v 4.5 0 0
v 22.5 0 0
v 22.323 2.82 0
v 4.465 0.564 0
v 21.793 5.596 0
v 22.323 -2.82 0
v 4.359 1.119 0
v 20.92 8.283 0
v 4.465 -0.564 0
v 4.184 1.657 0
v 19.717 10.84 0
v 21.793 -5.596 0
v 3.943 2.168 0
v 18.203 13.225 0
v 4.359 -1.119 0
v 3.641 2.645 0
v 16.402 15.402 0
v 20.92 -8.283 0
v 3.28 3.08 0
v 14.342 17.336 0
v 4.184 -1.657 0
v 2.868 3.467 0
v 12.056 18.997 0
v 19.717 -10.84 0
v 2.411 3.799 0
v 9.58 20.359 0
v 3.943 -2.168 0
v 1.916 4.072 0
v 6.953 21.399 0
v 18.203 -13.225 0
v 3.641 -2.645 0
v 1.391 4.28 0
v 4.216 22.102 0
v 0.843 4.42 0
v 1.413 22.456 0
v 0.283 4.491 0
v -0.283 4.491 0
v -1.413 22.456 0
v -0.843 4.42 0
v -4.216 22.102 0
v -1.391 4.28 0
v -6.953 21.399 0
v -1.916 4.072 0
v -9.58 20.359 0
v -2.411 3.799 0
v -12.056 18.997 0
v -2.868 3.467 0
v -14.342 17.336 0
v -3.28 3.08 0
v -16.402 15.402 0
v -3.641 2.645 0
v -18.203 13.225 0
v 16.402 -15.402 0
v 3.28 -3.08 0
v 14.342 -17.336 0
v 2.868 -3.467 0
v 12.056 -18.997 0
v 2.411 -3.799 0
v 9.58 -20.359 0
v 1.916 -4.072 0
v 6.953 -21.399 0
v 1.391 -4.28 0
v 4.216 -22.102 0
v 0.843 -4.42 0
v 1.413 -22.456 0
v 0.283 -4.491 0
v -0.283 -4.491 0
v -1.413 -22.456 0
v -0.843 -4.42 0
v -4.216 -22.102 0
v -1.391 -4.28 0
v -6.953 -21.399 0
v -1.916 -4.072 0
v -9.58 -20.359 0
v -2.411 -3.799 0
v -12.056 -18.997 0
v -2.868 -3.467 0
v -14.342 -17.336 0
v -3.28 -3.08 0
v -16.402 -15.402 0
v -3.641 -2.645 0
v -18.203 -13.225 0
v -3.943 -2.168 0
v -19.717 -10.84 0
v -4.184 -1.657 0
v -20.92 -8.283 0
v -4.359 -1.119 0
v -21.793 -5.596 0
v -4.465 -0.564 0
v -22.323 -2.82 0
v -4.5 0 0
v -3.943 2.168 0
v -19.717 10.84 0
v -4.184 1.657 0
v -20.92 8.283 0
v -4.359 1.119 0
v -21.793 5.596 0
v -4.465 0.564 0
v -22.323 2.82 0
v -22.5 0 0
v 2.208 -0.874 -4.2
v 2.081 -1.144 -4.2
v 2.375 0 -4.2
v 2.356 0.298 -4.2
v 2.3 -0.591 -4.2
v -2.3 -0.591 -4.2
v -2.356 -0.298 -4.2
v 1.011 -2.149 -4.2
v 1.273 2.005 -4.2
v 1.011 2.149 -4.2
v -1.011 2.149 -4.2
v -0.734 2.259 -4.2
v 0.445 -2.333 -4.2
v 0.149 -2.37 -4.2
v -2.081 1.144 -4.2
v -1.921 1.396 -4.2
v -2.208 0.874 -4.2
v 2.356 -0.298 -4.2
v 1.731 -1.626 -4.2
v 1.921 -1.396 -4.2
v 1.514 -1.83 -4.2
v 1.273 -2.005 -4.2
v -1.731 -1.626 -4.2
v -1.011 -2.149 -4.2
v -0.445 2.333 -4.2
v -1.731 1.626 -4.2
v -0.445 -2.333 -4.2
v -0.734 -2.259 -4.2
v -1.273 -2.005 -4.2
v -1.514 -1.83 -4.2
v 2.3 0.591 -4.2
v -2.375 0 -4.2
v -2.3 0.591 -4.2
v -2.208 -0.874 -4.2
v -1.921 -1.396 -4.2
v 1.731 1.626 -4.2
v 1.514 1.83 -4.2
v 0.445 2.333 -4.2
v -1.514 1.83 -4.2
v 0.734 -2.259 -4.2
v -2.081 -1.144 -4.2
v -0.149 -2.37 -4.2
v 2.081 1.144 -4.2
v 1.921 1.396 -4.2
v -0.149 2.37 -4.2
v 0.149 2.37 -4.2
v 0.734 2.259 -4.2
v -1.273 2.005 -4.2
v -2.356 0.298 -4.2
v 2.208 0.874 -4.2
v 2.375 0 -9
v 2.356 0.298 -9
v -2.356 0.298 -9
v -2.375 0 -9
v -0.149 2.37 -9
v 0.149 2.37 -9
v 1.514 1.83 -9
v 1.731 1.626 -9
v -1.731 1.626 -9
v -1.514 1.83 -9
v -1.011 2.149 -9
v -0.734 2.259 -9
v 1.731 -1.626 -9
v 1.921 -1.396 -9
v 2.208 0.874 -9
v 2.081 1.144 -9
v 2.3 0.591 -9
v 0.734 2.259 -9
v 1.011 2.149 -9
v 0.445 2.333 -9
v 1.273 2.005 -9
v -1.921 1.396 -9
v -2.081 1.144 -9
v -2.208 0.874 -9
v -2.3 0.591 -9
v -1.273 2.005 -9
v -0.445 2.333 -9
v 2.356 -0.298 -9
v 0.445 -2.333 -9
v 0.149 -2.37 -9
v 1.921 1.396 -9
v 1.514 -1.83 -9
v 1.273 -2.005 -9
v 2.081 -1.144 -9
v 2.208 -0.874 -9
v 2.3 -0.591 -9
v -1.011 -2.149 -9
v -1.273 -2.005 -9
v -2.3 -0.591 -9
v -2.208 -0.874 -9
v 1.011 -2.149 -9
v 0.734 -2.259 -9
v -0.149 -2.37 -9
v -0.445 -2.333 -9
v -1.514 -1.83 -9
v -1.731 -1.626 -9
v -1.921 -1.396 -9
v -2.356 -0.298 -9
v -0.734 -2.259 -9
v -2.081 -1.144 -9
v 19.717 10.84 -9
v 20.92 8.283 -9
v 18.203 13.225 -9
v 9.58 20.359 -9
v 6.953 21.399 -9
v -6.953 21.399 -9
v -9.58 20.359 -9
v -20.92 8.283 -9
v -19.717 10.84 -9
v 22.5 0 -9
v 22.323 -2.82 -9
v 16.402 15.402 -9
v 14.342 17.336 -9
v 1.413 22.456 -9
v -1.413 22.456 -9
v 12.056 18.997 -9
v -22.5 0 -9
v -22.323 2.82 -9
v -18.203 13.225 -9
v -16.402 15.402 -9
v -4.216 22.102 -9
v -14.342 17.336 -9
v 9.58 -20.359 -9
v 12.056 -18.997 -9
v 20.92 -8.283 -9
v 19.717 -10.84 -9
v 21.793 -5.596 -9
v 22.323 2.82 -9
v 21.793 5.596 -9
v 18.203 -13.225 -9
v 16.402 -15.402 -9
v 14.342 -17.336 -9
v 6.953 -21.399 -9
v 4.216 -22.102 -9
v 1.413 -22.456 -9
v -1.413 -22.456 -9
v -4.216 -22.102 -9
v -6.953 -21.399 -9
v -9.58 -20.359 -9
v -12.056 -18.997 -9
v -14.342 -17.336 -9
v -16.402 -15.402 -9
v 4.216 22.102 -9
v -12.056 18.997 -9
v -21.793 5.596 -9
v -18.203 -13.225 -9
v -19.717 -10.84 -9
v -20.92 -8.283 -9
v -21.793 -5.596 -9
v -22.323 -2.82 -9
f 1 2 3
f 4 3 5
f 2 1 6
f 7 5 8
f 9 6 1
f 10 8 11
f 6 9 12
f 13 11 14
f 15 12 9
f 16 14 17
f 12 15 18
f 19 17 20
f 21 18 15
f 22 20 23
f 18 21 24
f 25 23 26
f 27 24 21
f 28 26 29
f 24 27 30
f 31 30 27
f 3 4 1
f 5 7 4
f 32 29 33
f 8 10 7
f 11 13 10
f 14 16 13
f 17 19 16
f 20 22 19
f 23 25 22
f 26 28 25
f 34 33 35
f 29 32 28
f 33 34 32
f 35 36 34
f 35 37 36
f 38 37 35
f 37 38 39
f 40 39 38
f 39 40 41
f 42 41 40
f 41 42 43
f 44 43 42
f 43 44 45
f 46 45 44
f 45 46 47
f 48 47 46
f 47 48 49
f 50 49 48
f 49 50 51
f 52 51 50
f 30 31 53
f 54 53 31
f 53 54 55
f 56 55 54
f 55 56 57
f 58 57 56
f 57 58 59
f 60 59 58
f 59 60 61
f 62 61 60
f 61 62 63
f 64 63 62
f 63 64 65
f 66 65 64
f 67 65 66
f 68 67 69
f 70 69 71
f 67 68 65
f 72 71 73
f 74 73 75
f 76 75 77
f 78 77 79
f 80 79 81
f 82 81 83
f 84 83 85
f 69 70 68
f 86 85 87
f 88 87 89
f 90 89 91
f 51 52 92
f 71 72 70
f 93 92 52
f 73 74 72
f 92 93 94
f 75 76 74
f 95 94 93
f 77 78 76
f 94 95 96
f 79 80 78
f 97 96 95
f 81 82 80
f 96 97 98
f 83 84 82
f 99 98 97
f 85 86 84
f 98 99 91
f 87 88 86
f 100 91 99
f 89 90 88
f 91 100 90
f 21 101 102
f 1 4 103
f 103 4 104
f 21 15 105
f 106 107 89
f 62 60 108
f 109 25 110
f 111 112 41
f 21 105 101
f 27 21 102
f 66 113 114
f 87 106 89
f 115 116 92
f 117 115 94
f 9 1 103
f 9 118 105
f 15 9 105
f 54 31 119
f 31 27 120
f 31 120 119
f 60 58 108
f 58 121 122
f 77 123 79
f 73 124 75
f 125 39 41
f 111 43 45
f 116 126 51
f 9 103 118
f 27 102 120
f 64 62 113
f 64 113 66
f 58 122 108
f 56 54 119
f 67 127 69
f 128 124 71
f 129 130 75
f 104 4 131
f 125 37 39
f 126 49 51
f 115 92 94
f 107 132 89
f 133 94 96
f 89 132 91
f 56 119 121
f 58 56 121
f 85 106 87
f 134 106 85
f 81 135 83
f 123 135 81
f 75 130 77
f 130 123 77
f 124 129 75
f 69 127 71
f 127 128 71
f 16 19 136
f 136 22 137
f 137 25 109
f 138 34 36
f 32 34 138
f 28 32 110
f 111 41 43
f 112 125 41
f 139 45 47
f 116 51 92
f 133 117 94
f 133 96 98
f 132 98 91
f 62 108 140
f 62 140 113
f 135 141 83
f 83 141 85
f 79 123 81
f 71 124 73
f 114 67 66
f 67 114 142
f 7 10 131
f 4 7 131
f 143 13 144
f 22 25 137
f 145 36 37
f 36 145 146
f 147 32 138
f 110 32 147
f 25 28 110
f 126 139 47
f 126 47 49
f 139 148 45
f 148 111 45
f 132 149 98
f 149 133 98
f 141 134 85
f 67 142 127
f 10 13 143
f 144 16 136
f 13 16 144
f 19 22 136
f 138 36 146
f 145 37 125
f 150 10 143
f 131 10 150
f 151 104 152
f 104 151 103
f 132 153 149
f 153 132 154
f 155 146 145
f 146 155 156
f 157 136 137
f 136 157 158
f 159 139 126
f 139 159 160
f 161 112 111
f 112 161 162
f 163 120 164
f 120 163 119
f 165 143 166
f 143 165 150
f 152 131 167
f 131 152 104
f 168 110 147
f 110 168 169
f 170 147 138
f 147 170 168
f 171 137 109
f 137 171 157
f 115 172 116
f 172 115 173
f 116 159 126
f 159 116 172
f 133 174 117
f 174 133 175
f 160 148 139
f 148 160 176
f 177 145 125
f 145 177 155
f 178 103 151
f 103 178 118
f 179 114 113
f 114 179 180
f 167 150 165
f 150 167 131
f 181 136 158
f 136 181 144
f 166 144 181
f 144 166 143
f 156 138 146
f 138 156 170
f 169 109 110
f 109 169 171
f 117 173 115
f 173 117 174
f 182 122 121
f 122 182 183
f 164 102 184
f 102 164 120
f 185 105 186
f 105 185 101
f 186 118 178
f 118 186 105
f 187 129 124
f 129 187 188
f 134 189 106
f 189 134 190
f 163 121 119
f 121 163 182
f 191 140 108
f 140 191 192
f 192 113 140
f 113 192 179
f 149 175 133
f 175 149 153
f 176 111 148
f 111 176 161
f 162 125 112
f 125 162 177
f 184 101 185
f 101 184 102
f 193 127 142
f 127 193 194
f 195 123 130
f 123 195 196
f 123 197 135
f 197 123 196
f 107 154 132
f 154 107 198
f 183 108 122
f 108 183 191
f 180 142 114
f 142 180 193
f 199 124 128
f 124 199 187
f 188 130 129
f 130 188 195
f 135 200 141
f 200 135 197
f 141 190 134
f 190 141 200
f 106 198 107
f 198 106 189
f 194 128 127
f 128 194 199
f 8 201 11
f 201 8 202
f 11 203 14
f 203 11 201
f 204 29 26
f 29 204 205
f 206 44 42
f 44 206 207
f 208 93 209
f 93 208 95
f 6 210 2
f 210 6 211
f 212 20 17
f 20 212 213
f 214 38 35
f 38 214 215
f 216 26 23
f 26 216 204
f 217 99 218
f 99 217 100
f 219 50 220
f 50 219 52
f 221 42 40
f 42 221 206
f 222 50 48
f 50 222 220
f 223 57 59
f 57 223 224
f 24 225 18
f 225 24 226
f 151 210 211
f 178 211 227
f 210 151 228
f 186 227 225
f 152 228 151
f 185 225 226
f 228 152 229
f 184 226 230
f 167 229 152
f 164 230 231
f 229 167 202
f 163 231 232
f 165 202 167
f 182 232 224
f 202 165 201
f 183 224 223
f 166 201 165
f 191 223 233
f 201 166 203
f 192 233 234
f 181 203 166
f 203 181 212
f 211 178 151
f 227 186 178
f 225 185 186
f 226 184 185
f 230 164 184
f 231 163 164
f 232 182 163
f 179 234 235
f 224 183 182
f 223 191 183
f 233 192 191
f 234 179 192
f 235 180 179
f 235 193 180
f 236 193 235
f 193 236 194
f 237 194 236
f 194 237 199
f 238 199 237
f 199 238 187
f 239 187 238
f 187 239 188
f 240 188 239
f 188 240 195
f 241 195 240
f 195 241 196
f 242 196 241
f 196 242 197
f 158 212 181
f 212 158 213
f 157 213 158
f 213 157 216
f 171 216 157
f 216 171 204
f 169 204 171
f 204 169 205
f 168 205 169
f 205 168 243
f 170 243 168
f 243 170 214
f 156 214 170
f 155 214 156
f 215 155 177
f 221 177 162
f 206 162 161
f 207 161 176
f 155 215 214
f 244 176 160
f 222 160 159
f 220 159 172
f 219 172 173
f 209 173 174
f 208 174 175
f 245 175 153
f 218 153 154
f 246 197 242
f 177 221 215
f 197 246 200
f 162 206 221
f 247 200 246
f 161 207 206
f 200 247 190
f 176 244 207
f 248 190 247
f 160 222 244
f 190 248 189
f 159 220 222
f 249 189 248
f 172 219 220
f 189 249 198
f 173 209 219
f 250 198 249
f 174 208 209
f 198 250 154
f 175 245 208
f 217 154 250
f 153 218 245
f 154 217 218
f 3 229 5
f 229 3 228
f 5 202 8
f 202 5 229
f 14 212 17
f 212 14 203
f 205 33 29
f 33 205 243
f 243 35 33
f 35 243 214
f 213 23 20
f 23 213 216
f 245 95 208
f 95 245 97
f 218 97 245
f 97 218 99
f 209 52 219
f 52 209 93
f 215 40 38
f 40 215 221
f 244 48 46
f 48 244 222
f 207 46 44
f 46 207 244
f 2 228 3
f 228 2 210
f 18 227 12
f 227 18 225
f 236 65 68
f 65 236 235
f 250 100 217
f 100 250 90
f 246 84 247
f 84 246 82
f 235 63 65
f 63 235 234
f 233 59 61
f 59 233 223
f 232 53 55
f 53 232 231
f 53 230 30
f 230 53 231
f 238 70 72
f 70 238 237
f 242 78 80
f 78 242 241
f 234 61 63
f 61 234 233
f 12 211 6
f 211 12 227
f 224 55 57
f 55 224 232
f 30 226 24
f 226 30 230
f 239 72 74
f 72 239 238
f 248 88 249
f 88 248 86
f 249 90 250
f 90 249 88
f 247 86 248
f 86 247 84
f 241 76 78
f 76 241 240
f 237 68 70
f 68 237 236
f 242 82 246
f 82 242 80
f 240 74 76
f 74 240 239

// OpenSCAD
$fn = 50;

difference() {
	union() {
		translate(v = [0, 0, -9.0]) {
			cylinder(h = 9, r = 22.5);
		}
	}
	union() {
		translate(v = [0, 0, 0]) {
			rotate(a = [0, 0, 0]) {
				difference() {
					union() {
						translate(v = [0, 0, -12.0]) {
							cylinder(h = 12, r = 2.25);
						}
						translate(v = [0, 0, -4.2]) {
							cylinder(h = 4.2, r1 = 2.375, r2 = 4.5);
						}
						translate(v = [0, 0, -12.0]) {
							cylinder(h = 12, r = 2.375);
						}
						translate(v = [0, 0, -12.0]) {
							cylinder(h = 12, r = 2.25);
						}
					}
					union();
				}
			}
		}
	}
}
